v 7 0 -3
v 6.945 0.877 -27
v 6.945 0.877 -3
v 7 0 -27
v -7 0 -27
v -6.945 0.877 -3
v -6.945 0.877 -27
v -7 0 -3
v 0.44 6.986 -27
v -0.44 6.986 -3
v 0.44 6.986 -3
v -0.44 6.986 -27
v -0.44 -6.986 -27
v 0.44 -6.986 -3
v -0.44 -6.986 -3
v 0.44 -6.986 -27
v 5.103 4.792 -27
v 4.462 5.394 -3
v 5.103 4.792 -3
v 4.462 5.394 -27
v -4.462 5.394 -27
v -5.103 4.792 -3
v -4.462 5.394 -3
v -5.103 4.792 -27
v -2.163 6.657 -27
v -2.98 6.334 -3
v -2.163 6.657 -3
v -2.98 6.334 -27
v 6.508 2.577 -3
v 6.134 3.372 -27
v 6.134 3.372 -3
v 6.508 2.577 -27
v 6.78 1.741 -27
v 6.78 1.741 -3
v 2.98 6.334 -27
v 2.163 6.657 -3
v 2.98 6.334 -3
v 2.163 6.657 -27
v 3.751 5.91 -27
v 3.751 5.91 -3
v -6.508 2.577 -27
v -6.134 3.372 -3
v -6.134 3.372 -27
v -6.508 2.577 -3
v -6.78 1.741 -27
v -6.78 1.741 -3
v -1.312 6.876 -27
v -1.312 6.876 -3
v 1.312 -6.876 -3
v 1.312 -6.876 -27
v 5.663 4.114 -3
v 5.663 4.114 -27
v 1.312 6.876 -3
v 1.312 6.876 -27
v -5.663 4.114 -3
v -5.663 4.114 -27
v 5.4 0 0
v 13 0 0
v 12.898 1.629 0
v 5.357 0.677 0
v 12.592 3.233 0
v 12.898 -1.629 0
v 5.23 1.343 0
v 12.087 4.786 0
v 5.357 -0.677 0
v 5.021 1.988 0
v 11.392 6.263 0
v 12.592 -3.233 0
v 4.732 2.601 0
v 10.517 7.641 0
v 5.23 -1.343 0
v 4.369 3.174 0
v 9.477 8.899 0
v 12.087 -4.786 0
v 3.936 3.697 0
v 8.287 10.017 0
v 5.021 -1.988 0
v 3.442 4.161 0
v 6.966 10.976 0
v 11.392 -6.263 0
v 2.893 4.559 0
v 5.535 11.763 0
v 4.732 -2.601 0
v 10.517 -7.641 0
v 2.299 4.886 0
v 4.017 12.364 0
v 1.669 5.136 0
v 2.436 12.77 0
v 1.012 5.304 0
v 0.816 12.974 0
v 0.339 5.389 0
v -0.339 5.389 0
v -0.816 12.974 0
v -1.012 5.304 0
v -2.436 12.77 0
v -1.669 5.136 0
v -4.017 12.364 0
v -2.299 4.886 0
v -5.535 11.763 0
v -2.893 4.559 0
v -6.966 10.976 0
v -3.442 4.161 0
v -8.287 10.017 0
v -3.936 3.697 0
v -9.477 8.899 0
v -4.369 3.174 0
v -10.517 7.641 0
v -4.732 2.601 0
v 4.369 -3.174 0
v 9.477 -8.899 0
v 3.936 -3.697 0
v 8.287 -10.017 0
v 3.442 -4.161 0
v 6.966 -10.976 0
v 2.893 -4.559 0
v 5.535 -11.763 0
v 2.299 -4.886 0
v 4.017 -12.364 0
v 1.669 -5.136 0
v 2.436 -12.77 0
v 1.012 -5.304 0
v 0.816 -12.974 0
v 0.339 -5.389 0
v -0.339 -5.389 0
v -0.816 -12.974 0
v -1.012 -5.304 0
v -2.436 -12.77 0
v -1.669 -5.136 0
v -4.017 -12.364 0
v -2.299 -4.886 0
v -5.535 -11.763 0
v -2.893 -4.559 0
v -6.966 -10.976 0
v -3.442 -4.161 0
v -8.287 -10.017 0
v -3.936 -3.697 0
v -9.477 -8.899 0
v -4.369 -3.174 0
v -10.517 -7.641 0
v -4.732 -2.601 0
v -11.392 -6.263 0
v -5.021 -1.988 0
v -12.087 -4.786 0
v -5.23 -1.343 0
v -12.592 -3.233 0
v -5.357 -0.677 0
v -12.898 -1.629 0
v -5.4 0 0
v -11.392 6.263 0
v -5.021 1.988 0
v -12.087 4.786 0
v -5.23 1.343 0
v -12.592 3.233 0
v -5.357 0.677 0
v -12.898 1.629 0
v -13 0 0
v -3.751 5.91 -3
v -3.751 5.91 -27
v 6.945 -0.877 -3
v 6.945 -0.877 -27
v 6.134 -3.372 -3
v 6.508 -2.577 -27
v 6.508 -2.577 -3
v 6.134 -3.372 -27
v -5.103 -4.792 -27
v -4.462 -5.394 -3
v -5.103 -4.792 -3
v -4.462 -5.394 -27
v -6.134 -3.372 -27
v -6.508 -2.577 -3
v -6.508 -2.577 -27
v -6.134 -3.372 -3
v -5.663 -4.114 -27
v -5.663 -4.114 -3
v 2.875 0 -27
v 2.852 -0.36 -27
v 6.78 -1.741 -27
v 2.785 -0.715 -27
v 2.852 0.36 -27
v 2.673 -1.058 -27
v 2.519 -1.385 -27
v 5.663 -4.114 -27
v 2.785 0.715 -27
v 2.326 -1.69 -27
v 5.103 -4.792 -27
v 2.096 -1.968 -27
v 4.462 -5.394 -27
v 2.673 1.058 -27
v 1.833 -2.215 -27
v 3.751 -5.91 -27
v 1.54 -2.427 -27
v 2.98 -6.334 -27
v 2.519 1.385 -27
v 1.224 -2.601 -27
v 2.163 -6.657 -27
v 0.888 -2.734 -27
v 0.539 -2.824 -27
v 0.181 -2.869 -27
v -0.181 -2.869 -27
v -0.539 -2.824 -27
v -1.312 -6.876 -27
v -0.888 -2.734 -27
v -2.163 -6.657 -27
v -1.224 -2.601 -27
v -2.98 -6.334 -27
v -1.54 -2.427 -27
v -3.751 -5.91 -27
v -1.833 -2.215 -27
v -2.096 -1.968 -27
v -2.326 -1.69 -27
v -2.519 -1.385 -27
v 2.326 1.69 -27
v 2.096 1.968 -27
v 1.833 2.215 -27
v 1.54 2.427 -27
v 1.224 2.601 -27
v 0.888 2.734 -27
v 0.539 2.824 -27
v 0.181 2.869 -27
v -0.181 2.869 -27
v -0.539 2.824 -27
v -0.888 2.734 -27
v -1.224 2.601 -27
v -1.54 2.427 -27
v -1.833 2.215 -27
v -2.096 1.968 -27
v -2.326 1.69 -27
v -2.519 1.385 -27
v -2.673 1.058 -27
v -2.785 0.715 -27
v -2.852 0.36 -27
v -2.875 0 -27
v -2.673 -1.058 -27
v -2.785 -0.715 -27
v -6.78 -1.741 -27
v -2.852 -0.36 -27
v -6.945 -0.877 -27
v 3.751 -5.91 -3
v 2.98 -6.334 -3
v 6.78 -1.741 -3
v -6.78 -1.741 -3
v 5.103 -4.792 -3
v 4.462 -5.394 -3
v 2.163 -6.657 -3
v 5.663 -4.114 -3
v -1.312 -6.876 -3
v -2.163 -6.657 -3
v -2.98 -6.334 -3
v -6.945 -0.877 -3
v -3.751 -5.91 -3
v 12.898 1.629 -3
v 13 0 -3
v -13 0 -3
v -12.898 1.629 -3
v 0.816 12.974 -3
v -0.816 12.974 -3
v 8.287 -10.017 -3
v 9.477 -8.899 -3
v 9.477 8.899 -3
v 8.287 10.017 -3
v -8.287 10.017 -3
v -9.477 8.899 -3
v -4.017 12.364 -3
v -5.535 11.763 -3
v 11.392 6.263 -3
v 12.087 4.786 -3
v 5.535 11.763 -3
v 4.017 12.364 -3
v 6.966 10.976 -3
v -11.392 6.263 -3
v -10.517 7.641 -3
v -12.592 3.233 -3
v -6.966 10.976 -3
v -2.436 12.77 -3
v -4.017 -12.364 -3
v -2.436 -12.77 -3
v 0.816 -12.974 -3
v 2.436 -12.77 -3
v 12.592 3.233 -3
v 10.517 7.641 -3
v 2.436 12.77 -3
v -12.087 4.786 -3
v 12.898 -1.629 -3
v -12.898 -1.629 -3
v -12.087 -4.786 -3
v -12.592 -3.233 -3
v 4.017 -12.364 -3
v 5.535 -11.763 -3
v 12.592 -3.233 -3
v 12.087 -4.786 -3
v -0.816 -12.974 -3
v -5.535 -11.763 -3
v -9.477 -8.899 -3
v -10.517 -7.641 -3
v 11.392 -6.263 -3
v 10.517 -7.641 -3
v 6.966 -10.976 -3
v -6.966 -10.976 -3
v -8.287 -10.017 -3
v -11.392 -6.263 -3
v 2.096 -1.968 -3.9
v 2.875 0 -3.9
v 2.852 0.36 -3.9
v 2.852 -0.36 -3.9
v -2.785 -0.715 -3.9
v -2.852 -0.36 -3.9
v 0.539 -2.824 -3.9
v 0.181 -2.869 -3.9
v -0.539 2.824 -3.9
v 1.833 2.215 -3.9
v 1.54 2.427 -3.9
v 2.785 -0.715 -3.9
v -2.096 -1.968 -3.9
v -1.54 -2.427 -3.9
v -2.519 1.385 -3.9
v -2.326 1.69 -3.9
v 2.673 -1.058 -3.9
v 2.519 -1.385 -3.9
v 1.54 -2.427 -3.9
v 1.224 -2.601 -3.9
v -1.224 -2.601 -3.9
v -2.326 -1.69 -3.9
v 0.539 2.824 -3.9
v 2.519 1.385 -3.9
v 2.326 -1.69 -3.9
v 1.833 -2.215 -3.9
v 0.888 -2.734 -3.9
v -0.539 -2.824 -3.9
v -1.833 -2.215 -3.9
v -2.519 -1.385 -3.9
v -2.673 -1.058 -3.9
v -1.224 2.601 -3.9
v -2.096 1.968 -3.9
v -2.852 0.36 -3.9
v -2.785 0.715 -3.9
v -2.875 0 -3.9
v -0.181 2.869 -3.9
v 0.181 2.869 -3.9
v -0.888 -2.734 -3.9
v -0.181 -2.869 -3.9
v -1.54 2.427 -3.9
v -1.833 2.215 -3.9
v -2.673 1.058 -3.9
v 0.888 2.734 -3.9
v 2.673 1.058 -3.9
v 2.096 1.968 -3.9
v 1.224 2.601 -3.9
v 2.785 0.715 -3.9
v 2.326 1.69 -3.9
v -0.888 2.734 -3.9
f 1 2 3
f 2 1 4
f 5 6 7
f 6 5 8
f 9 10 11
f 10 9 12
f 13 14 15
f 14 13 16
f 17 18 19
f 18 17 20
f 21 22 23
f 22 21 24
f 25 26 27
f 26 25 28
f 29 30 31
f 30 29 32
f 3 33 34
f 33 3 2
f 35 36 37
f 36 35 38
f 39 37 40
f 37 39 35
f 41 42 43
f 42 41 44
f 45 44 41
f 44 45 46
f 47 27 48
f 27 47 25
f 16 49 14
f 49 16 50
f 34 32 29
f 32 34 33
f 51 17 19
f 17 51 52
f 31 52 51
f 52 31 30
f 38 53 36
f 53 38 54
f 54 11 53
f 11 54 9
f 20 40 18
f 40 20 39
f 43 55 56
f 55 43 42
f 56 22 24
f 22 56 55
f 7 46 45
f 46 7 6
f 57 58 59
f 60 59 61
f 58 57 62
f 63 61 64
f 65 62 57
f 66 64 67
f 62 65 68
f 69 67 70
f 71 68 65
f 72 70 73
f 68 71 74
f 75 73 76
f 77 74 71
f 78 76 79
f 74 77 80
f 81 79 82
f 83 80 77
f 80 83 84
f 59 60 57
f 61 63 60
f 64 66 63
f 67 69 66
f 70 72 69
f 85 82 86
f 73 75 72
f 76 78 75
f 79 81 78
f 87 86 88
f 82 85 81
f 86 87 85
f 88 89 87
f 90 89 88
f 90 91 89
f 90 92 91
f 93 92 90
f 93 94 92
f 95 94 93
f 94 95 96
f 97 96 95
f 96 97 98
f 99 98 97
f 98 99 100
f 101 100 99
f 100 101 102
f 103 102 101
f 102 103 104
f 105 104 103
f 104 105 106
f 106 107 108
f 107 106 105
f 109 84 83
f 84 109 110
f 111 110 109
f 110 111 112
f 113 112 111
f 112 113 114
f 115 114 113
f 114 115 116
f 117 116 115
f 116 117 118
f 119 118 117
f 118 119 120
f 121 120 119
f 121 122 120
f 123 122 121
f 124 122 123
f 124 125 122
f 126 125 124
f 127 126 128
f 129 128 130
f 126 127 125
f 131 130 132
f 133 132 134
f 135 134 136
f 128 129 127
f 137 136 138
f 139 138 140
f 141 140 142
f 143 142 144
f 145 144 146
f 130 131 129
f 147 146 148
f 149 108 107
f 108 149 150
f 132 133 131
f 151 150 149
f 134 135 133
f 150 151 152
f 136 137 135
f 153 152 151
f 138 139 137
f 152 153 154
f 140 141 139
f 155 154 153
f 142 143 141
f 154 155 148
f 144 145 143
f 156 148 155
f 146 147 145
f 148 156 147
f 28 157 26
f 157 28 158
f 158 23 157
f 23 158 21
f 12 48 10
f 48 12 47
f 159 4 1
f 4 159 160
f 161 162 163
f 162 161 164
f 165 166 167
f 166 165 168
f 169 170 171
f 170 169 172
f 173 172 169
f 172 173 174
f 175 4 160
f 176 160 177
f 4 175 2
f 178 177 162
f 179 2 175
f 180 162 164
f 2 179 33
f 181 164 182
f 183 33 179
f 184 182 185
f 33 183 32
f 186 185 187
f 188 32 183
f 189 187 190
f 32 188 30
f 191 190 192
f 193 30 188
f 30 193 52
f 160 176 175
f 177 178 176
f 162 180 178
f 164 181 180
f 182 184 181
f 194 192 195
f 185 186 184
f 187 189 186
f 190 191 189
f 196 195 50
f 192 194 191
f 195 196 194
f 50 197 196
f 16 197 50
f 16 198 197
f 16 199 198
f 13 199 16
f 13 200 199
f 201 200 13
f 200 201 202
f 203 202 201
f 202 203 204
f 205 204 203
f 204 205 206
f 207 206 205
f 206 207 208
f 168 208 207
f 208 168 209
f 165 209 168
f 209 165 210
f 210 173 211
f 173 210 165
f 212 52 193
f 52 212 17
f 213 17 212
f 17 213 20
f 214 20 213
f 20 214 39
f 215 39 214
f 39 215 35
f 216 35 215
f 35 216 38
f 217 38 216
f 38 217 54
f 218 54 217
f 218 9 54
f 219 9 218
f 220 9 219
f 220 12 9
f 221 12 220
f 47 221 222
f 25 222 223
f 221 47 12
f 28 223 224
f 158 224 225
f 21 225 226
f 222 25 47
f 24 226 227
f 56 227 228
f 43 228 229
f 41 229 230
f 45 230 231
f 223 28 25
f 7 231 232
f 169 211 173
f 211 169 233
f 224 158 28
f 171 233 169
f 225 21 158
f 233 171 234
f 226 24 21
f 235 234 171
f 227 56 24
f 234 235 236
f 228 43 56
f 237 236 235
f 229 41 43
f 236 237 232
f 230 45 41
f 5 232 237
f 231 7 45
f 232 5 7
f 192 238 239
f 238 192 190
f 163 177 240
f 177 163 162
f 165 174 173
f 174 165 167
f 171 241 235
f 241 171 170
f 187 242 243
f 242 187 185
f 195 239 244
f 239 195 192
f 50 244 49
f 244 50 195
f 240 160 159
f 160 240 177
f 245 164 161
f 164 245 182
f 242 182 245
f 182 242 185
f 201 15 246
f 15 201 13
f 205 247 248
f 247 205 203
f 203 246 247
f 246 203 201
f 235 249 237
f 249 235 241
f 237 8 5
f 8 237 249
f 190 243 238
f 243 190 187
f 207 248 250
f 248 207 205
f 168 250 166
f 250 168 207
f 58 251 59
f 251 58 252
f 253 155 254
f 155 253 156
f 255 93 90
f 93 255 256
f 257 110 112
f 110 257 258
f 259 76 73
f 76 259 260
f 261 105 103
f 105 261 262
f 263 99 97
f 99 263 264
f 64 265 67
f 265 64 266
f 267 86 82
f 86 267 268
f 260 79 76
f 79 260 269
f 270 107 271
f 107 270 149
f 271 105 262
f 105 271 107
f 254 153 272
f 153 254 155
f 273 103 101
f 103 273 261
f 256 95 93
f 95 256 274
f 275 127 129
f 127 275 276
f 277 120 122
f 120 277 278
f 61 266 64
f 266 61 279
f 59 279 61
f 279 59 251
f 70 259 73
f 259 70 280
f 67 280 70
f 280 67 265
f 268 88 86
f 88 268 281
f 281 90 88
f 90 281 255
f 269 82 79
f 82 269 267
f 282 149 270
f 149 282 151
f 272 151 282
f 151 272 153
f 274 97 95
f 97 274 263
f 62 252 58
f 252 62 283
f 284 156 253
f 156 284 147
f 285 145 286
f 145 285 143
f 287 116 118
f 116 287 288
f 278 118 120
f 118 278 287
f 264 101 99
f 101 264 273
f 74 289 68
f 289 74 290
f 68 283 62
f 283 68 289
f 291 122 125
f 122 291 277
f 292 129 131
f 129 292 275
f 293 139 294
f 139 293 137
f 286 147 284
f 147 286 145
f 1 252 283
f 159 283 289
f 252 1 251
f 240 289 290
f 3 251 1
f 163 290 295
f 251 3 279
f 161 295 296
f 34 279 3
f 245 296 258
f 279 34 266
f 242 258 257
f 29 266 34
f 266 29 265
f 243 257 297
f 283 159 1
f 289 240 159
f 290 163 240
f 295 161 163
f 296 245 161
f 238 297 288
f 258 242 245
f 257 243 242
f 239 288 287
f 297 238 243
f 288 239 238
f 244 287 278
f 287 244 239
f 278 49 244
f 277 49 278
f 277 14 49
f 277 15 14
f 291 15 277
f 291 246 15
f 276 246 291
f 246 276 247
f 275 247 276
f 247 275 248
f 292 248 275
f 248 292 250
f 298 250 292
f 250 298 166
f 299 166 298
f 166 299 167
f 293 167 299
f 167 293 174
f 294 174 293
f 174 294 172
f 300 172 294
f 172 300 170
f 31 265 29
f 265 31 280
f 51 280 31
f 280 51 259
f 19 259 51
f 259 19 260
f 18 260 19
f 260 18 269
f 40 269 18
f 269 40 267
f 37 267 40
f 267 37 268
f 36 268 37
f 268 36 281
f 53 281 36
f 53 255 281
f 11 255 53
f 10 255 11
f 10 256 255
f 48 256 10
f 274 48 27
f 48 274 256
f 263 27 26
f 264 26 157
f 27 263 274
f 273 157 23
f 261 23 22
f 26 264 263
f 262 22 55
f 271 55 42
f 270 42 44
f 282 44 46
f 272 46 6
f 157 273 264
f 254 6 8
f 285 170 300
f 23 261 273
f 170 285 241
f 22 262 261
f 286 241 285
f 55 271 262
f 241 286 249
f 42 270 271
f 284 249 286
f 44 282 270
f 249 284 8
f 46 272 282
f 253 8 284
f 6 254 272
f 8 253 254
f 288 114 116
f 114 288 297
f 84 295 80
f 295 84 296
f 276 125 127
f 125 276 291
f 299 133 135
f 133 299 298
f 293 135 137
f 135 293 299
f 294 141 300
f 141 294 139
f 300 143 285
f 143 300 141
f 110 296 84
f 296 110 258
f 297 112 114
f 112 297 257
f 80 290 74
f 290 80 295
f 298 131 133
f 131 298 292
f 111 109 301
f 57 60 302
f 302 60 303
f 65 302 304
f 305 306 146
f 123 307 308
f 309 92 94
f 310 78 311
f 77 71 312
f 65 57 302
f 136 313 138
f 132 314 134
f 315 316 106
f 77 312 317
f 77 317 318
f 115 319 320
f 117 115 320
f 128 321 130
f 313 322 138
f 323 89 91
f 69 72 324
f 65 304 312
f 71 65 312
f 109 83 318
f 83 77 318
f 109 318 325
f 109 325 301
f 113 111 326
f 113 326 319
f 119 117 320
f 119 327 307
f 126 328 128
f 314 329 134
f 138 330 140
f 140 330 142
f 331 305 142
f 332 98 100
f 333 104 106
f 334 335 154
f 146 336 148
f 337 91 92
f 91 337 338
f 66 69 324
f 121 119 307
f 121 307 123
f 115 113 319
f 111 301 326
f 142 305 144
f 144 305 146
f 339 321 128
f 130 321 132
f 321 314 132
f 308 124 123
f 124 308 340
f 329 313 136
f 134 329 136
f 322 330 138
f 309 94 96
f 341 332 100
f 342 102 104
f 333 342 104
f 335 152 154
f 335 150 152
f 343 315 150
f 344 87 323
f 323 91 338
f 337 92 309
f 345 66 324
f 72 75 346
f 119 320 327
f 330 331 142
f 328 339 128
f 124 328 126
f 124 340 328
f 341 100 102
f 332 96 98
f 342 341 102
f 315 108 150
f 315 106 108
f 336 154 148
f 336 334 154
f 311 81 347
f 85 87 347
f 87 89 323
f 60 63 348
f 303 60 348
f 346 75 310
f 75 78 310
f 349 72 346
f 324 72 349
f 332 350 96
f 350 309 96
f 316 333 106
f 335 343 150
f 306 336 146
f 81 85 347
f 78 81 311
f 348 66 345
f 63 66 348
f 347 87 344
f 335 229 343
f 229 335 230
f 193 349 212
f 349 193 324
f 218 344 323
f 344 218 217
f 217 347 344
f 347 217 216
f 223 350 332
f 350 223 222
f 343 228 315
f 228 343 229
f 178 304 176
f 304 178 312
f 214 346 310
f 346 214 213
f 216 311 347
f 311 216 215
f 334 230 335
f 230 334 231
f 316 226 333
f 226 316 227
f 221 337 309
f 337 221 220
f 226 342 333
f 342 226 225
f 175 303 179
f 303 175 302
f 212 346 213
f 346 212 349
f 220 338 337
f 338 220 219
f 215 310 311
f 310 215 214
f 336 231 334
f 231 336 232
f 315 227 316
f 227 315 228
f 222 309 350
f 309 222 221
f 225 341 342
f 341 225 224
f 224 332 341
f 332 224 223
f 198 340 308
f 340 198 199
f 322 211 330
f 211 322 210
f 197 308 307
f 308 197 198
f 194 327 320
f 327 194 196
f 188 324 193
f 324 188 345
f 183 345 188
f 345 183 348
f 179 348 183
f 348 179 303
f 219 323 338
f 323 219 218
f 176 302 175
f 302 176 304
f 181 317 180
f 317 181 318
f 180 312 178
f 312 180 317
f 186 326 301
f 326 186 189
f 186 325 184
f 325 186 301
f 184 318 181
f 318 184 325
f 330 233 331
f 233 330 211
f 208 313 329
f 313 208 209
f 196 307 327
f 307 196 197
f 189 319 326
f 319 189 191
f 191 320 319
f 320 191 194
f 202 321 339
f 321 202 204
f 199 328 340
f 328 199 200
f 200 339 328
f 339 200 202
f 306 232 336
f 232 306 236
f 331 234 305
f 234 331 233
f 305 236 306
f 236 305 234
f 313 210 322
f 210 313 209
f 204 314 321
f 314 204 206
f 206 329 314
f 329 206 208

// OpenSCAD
$fn = 50;


difference() {
	union() {
		translate(v = [0, 0, -27.0000000000]) {
			cylinder(h = 27, r = 7.0000000000);
		}
		translate(v = [0, 0, -3.0000000000]) {
			cylinder(h = 3, r = 13.0000000000);
		}
	}
	union() {
		translate(v = [0, 0, 0]) {
			rotate(a = [0, 0, 0]) {
				difference() {
					union() {
						#translate(v = [0, 0, -27.0000000000]) {
							cylinder(h = 27, r = 2.6000000000);
						}
						#translate(v = [0, 0, -3.9000000000]) {
							cylinder(h = 3.9000000000, r = 7.0000000000, r1 = 2.8750000000, r2 = 5.4000000000);
						}
						#translate(v = [0, 0, -27.0000000000]) {
							cylinder(h = 27, r = 2.8750000000);
						}
						#translate(v = [0, 0, -27.0000000000]) {
							cylinder(h = 27, r = 2.6000000000);
						}
					}
					union();
				}
			}
		}
	}
}
